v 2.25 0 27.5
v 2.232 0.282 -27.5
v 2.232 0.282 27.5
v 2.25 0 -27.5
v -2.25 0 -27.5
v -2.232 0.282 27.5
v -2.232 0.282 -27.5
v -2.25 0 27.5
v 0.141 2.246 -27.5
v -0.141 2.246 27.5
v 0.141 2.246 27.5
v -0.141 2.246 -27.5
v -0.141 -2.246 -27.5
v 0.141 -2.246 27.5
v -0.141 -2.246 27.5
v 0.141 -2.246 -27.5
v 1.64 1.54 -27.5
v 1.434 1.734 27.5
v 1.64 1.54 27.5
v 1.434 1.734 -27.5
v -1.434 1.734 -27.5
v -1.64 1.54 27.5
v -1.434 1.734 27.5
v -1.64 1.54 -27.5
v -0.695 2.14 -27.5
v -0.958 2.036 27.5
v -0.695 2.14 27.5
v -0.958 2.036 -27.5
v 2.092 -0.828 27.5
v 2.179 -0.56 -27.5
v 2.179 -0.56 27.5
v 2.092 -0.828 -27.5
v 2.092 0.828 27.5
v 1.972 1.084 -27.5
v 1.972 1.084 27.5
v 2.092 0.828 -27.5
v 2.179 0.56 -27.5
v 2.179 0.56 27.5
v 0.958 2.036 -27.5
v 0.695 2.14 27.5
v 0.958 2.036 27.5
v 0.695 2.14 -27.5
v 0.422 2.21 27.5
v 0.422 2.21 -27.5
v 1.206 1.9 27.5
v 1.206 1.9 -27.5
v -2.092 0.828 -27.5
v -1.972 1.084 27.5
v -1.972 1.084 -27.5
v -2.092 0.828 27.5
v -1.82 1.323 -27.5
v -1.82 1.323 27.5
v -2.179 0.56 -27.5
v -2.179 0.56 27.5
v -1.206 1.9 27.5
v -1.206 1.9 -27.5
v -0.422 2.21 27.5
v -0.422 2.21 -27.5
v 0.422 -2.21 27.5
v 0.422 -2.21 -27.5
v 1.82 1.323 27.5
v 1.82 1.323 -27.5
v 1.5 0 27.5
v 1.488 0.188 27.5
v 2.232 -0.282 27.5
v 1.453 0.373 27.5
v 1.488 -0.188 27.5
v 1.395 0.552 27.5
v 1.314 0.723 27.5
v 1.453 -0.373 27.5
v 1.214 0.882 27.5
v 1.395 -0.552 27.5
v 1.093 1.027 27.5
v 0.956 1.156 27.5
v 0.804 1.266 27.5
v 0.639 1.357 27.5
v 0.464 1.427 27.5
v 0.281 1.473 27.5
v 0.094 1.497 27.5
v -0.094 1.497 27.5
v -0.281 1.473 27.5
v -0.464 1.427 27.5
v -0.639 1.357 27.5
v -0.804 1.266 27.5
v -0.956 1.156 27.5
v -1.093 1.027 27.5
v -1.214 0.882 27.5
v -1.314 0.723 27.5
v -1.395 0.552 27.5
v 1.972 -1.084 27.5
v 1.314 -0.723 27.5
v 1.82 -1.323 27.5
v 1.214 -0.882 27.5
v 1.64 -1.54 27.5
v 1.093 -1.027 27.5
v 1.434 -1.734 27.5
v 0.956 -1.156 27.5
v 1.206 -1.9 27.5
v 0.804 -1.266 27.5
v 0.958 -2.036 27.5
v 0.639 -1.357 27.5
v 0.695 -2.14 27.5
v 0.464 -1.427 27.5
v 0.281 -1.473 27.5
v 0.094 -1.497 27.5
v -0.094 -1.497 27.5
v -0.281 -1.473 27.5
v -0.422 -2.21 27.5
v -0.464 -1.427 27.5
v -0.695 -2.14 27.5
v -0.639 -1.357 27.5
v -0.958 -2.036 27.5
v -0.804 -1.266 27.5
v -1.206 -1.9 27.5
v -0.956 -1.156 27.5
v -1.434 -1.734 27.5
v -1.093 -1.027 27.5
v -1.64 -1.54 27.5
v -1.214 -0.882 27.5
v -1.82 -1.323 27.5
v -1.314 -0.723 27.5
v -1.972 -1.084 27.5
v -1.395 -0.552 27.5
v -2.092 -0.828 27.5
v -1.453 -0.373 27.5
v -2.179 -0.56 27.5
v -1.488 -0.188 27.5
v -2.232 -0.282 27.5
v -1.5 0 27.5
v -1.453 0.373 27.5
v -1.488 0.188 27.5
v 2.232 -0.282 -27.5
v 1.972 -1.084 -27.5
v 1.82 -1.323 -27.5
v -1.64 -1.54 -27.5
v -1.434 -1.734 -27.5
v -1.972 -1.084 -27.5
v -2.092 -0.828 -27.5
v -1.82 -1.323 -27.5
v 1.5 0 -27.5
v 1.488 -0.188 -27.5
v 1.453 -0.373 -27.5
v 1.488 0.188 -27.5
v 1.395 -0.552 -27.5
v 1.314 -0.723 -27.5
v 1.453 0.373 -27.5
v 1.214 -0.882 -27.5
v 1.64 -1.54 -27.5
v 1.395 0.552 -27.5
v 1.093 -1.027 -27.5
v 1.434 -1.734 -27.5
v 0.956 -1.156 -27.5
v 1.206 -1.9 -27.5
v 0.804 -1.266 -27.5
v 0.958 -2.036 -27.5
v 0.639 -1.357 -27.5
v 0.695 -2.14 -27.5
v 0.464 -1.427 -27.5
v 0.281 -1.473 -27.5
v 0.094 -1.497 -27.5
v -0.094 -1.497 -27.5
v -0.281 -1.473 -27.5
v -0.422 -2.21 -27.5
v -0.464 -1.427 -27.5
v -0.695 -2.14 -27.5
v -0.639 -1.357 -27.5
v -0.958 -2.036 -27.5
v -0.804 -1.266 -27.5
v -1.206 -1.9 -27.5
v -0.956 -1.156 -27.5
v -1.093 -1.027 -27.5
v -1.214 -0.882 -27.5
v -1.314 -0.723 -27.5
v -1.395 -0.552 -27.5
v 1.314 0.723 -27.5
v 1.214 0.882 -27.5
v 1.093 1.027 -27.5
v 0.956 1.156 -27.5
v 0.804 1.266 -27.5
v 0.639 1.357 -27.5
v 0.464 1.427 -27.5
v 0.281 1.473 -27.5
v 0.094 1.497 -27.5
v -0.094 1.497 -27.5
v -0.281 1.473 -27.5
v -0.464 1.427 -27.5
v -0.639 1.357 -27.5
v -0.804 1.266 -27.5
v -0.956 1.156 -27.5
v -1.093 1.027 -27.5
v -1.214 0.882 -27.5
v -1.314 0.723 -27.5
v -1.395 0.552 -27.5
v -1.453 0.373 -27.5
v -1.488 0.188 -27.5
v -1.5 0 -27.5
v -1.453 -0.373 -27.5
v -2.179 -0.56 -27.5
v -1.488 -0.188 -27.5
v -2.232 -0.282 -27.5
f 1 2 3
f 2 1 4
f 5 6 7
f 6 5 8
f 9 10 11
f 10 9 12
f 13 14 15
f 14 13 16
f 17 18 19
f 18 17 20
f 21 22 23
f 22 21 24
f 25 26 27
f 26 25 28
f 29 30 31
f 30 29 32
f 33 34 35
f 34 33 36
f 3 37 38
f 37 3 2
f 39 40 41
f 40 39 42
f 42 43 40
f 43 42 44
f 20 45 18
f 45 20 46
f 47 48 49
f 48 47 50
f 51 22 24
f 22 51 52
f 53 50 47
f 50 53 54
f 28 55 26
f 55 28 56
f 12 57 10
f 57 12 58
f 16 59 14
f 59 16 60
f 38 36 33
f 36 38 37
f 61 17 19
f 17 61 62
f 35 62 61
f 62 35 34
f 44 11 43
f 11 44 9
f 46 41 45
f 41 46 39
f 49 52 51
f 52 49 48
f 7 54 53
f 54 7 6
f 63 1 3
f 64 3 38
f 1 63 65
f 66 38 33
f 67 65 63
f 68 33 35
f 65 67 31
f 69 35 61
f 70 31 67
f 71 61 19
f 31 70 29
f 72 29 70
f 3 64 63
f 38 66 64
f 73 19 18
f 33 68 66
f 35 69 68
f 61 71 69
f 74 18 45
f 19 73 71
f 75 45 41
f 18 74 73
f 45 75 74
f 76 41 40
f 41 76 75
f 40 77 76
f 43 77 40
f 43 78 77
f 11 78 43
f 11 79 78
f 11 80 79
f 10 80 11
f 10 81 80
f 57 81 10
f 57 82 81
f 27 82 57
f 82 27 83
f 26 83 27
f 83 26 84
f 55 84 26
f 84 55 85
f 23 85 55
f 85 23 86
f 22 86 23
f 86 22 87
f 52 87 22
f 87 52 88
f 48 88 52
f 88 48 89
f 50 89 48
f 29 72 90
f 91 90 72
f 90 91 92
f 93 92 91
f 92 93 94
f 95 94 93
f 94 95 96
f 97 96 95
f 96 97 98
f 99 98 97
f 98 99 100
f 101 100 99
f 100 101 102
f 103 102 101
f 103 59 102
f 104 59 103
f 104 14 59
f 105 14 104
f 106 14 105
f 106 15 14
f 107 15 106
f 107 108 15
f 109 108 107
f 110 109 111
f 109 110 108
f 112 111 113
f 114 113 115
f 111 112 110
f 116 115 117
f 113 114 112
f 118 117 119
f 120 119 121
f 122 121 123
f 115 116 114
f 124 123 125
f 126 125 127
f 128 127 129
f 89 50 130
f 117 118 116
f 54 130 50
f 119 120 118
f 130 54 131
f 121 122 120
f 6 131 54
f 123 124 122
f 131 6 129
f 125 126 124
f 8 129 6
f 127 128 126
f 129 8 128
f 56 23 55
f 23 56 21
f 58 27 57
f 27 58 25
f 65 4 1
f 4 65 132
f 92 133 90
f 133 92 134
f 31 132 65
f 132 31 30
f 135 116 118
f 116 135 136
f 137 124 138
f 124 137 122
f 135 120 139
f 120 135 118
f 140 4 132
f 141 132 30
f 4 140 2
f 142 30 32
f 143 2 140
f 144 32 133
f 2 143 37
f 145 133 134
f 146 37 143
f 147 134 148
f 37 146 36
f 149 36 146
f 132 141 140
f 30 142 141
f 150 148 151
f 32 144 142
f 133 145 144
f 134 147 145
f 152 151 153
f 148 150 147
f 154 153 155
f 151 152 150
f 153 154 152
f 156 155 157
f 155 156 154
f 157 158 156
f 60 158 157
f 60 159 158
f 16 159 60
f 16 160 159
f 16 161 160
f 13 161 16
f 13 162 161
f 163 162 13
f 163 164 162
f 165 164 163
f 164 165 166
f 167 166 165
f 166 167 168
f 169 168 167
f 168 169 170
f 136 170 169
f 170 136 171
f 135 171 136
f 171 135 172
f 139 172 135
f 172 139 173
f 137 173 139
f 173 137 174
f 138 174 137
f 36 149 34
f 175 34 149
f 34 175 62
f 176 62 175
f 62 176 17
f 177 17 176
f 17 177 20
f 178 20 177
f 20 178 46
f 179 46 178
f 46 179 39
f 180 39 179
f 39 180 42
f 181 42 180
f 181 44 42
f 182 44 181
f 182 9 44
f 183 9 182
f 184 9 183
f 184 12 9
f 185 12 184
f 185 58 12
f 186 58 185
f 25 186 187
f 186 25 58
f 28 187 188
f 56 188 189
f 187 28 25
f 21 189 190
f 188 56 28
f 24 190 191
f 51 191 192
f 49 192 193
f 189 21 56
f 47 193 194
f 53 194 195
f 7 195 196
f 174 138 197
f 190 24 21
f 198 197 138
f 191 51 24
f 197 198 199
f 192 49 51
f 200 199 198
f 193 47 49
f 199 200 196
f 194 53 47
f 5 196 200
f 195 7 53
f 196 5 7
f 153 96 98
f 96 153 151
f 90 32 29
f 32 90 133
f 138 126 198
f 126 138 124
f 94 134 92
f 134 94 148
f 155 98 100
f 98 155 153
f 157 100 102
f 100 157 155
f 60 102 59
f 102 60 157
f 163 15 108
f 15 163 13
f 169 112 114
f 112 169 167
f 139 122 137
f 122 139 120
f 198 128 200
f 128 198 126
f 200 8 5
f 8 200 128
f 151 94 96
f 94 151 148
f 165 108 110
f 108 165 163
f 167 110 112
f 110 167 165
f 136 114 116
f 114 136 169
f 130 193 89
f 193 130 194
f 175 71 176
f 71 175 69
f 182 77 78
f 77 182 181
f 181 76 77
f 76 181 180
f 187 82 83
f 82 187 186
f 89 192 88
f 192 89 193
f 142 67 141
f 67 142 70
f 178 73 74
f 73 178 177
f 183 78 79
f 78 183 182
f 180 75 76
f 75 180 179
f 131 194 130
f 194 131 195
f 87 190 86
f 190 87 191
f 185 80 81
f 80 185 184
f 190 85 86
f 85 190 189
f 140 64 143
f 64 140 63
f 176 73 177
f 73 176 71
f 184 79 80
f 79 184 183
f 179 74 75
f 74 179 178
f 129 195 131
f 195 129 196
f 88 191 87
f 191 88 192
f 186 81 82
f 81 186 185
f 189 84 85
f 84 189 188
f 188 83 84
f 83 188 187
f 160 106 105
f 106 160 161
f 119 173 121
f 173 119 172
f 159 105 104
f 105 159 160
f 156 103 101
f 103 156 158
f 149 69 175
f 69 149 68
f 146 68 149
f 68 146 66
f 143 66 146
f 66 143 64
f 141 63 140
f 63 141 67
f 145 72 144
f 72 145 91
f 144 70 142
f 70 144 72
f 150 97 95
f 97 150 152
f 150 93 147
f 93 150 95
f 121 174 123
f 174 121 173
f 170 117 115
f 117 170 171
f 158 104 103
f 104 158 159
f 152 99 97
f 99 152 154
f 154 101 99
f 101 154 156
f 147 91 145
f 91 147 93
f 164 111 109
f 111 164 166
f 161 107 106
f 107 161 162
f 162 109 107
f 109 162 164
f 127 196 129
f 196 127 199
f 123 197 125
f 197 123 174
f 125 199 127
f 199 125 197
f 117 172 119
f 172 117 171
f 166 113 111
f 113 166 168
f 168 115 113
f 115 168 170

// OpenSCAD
$fn = 50;


difference() {
	union() {
		translate(v = [0, 0, -27.5000000000]) {
			cylinder(h = 55, r = 2.2500000000);
		}
	}
	union() {
		translate(v = [0, 0, -100.0000000000]) {
			cylinder(h = 200, r = 1.5000000000);
		}
	}
}
